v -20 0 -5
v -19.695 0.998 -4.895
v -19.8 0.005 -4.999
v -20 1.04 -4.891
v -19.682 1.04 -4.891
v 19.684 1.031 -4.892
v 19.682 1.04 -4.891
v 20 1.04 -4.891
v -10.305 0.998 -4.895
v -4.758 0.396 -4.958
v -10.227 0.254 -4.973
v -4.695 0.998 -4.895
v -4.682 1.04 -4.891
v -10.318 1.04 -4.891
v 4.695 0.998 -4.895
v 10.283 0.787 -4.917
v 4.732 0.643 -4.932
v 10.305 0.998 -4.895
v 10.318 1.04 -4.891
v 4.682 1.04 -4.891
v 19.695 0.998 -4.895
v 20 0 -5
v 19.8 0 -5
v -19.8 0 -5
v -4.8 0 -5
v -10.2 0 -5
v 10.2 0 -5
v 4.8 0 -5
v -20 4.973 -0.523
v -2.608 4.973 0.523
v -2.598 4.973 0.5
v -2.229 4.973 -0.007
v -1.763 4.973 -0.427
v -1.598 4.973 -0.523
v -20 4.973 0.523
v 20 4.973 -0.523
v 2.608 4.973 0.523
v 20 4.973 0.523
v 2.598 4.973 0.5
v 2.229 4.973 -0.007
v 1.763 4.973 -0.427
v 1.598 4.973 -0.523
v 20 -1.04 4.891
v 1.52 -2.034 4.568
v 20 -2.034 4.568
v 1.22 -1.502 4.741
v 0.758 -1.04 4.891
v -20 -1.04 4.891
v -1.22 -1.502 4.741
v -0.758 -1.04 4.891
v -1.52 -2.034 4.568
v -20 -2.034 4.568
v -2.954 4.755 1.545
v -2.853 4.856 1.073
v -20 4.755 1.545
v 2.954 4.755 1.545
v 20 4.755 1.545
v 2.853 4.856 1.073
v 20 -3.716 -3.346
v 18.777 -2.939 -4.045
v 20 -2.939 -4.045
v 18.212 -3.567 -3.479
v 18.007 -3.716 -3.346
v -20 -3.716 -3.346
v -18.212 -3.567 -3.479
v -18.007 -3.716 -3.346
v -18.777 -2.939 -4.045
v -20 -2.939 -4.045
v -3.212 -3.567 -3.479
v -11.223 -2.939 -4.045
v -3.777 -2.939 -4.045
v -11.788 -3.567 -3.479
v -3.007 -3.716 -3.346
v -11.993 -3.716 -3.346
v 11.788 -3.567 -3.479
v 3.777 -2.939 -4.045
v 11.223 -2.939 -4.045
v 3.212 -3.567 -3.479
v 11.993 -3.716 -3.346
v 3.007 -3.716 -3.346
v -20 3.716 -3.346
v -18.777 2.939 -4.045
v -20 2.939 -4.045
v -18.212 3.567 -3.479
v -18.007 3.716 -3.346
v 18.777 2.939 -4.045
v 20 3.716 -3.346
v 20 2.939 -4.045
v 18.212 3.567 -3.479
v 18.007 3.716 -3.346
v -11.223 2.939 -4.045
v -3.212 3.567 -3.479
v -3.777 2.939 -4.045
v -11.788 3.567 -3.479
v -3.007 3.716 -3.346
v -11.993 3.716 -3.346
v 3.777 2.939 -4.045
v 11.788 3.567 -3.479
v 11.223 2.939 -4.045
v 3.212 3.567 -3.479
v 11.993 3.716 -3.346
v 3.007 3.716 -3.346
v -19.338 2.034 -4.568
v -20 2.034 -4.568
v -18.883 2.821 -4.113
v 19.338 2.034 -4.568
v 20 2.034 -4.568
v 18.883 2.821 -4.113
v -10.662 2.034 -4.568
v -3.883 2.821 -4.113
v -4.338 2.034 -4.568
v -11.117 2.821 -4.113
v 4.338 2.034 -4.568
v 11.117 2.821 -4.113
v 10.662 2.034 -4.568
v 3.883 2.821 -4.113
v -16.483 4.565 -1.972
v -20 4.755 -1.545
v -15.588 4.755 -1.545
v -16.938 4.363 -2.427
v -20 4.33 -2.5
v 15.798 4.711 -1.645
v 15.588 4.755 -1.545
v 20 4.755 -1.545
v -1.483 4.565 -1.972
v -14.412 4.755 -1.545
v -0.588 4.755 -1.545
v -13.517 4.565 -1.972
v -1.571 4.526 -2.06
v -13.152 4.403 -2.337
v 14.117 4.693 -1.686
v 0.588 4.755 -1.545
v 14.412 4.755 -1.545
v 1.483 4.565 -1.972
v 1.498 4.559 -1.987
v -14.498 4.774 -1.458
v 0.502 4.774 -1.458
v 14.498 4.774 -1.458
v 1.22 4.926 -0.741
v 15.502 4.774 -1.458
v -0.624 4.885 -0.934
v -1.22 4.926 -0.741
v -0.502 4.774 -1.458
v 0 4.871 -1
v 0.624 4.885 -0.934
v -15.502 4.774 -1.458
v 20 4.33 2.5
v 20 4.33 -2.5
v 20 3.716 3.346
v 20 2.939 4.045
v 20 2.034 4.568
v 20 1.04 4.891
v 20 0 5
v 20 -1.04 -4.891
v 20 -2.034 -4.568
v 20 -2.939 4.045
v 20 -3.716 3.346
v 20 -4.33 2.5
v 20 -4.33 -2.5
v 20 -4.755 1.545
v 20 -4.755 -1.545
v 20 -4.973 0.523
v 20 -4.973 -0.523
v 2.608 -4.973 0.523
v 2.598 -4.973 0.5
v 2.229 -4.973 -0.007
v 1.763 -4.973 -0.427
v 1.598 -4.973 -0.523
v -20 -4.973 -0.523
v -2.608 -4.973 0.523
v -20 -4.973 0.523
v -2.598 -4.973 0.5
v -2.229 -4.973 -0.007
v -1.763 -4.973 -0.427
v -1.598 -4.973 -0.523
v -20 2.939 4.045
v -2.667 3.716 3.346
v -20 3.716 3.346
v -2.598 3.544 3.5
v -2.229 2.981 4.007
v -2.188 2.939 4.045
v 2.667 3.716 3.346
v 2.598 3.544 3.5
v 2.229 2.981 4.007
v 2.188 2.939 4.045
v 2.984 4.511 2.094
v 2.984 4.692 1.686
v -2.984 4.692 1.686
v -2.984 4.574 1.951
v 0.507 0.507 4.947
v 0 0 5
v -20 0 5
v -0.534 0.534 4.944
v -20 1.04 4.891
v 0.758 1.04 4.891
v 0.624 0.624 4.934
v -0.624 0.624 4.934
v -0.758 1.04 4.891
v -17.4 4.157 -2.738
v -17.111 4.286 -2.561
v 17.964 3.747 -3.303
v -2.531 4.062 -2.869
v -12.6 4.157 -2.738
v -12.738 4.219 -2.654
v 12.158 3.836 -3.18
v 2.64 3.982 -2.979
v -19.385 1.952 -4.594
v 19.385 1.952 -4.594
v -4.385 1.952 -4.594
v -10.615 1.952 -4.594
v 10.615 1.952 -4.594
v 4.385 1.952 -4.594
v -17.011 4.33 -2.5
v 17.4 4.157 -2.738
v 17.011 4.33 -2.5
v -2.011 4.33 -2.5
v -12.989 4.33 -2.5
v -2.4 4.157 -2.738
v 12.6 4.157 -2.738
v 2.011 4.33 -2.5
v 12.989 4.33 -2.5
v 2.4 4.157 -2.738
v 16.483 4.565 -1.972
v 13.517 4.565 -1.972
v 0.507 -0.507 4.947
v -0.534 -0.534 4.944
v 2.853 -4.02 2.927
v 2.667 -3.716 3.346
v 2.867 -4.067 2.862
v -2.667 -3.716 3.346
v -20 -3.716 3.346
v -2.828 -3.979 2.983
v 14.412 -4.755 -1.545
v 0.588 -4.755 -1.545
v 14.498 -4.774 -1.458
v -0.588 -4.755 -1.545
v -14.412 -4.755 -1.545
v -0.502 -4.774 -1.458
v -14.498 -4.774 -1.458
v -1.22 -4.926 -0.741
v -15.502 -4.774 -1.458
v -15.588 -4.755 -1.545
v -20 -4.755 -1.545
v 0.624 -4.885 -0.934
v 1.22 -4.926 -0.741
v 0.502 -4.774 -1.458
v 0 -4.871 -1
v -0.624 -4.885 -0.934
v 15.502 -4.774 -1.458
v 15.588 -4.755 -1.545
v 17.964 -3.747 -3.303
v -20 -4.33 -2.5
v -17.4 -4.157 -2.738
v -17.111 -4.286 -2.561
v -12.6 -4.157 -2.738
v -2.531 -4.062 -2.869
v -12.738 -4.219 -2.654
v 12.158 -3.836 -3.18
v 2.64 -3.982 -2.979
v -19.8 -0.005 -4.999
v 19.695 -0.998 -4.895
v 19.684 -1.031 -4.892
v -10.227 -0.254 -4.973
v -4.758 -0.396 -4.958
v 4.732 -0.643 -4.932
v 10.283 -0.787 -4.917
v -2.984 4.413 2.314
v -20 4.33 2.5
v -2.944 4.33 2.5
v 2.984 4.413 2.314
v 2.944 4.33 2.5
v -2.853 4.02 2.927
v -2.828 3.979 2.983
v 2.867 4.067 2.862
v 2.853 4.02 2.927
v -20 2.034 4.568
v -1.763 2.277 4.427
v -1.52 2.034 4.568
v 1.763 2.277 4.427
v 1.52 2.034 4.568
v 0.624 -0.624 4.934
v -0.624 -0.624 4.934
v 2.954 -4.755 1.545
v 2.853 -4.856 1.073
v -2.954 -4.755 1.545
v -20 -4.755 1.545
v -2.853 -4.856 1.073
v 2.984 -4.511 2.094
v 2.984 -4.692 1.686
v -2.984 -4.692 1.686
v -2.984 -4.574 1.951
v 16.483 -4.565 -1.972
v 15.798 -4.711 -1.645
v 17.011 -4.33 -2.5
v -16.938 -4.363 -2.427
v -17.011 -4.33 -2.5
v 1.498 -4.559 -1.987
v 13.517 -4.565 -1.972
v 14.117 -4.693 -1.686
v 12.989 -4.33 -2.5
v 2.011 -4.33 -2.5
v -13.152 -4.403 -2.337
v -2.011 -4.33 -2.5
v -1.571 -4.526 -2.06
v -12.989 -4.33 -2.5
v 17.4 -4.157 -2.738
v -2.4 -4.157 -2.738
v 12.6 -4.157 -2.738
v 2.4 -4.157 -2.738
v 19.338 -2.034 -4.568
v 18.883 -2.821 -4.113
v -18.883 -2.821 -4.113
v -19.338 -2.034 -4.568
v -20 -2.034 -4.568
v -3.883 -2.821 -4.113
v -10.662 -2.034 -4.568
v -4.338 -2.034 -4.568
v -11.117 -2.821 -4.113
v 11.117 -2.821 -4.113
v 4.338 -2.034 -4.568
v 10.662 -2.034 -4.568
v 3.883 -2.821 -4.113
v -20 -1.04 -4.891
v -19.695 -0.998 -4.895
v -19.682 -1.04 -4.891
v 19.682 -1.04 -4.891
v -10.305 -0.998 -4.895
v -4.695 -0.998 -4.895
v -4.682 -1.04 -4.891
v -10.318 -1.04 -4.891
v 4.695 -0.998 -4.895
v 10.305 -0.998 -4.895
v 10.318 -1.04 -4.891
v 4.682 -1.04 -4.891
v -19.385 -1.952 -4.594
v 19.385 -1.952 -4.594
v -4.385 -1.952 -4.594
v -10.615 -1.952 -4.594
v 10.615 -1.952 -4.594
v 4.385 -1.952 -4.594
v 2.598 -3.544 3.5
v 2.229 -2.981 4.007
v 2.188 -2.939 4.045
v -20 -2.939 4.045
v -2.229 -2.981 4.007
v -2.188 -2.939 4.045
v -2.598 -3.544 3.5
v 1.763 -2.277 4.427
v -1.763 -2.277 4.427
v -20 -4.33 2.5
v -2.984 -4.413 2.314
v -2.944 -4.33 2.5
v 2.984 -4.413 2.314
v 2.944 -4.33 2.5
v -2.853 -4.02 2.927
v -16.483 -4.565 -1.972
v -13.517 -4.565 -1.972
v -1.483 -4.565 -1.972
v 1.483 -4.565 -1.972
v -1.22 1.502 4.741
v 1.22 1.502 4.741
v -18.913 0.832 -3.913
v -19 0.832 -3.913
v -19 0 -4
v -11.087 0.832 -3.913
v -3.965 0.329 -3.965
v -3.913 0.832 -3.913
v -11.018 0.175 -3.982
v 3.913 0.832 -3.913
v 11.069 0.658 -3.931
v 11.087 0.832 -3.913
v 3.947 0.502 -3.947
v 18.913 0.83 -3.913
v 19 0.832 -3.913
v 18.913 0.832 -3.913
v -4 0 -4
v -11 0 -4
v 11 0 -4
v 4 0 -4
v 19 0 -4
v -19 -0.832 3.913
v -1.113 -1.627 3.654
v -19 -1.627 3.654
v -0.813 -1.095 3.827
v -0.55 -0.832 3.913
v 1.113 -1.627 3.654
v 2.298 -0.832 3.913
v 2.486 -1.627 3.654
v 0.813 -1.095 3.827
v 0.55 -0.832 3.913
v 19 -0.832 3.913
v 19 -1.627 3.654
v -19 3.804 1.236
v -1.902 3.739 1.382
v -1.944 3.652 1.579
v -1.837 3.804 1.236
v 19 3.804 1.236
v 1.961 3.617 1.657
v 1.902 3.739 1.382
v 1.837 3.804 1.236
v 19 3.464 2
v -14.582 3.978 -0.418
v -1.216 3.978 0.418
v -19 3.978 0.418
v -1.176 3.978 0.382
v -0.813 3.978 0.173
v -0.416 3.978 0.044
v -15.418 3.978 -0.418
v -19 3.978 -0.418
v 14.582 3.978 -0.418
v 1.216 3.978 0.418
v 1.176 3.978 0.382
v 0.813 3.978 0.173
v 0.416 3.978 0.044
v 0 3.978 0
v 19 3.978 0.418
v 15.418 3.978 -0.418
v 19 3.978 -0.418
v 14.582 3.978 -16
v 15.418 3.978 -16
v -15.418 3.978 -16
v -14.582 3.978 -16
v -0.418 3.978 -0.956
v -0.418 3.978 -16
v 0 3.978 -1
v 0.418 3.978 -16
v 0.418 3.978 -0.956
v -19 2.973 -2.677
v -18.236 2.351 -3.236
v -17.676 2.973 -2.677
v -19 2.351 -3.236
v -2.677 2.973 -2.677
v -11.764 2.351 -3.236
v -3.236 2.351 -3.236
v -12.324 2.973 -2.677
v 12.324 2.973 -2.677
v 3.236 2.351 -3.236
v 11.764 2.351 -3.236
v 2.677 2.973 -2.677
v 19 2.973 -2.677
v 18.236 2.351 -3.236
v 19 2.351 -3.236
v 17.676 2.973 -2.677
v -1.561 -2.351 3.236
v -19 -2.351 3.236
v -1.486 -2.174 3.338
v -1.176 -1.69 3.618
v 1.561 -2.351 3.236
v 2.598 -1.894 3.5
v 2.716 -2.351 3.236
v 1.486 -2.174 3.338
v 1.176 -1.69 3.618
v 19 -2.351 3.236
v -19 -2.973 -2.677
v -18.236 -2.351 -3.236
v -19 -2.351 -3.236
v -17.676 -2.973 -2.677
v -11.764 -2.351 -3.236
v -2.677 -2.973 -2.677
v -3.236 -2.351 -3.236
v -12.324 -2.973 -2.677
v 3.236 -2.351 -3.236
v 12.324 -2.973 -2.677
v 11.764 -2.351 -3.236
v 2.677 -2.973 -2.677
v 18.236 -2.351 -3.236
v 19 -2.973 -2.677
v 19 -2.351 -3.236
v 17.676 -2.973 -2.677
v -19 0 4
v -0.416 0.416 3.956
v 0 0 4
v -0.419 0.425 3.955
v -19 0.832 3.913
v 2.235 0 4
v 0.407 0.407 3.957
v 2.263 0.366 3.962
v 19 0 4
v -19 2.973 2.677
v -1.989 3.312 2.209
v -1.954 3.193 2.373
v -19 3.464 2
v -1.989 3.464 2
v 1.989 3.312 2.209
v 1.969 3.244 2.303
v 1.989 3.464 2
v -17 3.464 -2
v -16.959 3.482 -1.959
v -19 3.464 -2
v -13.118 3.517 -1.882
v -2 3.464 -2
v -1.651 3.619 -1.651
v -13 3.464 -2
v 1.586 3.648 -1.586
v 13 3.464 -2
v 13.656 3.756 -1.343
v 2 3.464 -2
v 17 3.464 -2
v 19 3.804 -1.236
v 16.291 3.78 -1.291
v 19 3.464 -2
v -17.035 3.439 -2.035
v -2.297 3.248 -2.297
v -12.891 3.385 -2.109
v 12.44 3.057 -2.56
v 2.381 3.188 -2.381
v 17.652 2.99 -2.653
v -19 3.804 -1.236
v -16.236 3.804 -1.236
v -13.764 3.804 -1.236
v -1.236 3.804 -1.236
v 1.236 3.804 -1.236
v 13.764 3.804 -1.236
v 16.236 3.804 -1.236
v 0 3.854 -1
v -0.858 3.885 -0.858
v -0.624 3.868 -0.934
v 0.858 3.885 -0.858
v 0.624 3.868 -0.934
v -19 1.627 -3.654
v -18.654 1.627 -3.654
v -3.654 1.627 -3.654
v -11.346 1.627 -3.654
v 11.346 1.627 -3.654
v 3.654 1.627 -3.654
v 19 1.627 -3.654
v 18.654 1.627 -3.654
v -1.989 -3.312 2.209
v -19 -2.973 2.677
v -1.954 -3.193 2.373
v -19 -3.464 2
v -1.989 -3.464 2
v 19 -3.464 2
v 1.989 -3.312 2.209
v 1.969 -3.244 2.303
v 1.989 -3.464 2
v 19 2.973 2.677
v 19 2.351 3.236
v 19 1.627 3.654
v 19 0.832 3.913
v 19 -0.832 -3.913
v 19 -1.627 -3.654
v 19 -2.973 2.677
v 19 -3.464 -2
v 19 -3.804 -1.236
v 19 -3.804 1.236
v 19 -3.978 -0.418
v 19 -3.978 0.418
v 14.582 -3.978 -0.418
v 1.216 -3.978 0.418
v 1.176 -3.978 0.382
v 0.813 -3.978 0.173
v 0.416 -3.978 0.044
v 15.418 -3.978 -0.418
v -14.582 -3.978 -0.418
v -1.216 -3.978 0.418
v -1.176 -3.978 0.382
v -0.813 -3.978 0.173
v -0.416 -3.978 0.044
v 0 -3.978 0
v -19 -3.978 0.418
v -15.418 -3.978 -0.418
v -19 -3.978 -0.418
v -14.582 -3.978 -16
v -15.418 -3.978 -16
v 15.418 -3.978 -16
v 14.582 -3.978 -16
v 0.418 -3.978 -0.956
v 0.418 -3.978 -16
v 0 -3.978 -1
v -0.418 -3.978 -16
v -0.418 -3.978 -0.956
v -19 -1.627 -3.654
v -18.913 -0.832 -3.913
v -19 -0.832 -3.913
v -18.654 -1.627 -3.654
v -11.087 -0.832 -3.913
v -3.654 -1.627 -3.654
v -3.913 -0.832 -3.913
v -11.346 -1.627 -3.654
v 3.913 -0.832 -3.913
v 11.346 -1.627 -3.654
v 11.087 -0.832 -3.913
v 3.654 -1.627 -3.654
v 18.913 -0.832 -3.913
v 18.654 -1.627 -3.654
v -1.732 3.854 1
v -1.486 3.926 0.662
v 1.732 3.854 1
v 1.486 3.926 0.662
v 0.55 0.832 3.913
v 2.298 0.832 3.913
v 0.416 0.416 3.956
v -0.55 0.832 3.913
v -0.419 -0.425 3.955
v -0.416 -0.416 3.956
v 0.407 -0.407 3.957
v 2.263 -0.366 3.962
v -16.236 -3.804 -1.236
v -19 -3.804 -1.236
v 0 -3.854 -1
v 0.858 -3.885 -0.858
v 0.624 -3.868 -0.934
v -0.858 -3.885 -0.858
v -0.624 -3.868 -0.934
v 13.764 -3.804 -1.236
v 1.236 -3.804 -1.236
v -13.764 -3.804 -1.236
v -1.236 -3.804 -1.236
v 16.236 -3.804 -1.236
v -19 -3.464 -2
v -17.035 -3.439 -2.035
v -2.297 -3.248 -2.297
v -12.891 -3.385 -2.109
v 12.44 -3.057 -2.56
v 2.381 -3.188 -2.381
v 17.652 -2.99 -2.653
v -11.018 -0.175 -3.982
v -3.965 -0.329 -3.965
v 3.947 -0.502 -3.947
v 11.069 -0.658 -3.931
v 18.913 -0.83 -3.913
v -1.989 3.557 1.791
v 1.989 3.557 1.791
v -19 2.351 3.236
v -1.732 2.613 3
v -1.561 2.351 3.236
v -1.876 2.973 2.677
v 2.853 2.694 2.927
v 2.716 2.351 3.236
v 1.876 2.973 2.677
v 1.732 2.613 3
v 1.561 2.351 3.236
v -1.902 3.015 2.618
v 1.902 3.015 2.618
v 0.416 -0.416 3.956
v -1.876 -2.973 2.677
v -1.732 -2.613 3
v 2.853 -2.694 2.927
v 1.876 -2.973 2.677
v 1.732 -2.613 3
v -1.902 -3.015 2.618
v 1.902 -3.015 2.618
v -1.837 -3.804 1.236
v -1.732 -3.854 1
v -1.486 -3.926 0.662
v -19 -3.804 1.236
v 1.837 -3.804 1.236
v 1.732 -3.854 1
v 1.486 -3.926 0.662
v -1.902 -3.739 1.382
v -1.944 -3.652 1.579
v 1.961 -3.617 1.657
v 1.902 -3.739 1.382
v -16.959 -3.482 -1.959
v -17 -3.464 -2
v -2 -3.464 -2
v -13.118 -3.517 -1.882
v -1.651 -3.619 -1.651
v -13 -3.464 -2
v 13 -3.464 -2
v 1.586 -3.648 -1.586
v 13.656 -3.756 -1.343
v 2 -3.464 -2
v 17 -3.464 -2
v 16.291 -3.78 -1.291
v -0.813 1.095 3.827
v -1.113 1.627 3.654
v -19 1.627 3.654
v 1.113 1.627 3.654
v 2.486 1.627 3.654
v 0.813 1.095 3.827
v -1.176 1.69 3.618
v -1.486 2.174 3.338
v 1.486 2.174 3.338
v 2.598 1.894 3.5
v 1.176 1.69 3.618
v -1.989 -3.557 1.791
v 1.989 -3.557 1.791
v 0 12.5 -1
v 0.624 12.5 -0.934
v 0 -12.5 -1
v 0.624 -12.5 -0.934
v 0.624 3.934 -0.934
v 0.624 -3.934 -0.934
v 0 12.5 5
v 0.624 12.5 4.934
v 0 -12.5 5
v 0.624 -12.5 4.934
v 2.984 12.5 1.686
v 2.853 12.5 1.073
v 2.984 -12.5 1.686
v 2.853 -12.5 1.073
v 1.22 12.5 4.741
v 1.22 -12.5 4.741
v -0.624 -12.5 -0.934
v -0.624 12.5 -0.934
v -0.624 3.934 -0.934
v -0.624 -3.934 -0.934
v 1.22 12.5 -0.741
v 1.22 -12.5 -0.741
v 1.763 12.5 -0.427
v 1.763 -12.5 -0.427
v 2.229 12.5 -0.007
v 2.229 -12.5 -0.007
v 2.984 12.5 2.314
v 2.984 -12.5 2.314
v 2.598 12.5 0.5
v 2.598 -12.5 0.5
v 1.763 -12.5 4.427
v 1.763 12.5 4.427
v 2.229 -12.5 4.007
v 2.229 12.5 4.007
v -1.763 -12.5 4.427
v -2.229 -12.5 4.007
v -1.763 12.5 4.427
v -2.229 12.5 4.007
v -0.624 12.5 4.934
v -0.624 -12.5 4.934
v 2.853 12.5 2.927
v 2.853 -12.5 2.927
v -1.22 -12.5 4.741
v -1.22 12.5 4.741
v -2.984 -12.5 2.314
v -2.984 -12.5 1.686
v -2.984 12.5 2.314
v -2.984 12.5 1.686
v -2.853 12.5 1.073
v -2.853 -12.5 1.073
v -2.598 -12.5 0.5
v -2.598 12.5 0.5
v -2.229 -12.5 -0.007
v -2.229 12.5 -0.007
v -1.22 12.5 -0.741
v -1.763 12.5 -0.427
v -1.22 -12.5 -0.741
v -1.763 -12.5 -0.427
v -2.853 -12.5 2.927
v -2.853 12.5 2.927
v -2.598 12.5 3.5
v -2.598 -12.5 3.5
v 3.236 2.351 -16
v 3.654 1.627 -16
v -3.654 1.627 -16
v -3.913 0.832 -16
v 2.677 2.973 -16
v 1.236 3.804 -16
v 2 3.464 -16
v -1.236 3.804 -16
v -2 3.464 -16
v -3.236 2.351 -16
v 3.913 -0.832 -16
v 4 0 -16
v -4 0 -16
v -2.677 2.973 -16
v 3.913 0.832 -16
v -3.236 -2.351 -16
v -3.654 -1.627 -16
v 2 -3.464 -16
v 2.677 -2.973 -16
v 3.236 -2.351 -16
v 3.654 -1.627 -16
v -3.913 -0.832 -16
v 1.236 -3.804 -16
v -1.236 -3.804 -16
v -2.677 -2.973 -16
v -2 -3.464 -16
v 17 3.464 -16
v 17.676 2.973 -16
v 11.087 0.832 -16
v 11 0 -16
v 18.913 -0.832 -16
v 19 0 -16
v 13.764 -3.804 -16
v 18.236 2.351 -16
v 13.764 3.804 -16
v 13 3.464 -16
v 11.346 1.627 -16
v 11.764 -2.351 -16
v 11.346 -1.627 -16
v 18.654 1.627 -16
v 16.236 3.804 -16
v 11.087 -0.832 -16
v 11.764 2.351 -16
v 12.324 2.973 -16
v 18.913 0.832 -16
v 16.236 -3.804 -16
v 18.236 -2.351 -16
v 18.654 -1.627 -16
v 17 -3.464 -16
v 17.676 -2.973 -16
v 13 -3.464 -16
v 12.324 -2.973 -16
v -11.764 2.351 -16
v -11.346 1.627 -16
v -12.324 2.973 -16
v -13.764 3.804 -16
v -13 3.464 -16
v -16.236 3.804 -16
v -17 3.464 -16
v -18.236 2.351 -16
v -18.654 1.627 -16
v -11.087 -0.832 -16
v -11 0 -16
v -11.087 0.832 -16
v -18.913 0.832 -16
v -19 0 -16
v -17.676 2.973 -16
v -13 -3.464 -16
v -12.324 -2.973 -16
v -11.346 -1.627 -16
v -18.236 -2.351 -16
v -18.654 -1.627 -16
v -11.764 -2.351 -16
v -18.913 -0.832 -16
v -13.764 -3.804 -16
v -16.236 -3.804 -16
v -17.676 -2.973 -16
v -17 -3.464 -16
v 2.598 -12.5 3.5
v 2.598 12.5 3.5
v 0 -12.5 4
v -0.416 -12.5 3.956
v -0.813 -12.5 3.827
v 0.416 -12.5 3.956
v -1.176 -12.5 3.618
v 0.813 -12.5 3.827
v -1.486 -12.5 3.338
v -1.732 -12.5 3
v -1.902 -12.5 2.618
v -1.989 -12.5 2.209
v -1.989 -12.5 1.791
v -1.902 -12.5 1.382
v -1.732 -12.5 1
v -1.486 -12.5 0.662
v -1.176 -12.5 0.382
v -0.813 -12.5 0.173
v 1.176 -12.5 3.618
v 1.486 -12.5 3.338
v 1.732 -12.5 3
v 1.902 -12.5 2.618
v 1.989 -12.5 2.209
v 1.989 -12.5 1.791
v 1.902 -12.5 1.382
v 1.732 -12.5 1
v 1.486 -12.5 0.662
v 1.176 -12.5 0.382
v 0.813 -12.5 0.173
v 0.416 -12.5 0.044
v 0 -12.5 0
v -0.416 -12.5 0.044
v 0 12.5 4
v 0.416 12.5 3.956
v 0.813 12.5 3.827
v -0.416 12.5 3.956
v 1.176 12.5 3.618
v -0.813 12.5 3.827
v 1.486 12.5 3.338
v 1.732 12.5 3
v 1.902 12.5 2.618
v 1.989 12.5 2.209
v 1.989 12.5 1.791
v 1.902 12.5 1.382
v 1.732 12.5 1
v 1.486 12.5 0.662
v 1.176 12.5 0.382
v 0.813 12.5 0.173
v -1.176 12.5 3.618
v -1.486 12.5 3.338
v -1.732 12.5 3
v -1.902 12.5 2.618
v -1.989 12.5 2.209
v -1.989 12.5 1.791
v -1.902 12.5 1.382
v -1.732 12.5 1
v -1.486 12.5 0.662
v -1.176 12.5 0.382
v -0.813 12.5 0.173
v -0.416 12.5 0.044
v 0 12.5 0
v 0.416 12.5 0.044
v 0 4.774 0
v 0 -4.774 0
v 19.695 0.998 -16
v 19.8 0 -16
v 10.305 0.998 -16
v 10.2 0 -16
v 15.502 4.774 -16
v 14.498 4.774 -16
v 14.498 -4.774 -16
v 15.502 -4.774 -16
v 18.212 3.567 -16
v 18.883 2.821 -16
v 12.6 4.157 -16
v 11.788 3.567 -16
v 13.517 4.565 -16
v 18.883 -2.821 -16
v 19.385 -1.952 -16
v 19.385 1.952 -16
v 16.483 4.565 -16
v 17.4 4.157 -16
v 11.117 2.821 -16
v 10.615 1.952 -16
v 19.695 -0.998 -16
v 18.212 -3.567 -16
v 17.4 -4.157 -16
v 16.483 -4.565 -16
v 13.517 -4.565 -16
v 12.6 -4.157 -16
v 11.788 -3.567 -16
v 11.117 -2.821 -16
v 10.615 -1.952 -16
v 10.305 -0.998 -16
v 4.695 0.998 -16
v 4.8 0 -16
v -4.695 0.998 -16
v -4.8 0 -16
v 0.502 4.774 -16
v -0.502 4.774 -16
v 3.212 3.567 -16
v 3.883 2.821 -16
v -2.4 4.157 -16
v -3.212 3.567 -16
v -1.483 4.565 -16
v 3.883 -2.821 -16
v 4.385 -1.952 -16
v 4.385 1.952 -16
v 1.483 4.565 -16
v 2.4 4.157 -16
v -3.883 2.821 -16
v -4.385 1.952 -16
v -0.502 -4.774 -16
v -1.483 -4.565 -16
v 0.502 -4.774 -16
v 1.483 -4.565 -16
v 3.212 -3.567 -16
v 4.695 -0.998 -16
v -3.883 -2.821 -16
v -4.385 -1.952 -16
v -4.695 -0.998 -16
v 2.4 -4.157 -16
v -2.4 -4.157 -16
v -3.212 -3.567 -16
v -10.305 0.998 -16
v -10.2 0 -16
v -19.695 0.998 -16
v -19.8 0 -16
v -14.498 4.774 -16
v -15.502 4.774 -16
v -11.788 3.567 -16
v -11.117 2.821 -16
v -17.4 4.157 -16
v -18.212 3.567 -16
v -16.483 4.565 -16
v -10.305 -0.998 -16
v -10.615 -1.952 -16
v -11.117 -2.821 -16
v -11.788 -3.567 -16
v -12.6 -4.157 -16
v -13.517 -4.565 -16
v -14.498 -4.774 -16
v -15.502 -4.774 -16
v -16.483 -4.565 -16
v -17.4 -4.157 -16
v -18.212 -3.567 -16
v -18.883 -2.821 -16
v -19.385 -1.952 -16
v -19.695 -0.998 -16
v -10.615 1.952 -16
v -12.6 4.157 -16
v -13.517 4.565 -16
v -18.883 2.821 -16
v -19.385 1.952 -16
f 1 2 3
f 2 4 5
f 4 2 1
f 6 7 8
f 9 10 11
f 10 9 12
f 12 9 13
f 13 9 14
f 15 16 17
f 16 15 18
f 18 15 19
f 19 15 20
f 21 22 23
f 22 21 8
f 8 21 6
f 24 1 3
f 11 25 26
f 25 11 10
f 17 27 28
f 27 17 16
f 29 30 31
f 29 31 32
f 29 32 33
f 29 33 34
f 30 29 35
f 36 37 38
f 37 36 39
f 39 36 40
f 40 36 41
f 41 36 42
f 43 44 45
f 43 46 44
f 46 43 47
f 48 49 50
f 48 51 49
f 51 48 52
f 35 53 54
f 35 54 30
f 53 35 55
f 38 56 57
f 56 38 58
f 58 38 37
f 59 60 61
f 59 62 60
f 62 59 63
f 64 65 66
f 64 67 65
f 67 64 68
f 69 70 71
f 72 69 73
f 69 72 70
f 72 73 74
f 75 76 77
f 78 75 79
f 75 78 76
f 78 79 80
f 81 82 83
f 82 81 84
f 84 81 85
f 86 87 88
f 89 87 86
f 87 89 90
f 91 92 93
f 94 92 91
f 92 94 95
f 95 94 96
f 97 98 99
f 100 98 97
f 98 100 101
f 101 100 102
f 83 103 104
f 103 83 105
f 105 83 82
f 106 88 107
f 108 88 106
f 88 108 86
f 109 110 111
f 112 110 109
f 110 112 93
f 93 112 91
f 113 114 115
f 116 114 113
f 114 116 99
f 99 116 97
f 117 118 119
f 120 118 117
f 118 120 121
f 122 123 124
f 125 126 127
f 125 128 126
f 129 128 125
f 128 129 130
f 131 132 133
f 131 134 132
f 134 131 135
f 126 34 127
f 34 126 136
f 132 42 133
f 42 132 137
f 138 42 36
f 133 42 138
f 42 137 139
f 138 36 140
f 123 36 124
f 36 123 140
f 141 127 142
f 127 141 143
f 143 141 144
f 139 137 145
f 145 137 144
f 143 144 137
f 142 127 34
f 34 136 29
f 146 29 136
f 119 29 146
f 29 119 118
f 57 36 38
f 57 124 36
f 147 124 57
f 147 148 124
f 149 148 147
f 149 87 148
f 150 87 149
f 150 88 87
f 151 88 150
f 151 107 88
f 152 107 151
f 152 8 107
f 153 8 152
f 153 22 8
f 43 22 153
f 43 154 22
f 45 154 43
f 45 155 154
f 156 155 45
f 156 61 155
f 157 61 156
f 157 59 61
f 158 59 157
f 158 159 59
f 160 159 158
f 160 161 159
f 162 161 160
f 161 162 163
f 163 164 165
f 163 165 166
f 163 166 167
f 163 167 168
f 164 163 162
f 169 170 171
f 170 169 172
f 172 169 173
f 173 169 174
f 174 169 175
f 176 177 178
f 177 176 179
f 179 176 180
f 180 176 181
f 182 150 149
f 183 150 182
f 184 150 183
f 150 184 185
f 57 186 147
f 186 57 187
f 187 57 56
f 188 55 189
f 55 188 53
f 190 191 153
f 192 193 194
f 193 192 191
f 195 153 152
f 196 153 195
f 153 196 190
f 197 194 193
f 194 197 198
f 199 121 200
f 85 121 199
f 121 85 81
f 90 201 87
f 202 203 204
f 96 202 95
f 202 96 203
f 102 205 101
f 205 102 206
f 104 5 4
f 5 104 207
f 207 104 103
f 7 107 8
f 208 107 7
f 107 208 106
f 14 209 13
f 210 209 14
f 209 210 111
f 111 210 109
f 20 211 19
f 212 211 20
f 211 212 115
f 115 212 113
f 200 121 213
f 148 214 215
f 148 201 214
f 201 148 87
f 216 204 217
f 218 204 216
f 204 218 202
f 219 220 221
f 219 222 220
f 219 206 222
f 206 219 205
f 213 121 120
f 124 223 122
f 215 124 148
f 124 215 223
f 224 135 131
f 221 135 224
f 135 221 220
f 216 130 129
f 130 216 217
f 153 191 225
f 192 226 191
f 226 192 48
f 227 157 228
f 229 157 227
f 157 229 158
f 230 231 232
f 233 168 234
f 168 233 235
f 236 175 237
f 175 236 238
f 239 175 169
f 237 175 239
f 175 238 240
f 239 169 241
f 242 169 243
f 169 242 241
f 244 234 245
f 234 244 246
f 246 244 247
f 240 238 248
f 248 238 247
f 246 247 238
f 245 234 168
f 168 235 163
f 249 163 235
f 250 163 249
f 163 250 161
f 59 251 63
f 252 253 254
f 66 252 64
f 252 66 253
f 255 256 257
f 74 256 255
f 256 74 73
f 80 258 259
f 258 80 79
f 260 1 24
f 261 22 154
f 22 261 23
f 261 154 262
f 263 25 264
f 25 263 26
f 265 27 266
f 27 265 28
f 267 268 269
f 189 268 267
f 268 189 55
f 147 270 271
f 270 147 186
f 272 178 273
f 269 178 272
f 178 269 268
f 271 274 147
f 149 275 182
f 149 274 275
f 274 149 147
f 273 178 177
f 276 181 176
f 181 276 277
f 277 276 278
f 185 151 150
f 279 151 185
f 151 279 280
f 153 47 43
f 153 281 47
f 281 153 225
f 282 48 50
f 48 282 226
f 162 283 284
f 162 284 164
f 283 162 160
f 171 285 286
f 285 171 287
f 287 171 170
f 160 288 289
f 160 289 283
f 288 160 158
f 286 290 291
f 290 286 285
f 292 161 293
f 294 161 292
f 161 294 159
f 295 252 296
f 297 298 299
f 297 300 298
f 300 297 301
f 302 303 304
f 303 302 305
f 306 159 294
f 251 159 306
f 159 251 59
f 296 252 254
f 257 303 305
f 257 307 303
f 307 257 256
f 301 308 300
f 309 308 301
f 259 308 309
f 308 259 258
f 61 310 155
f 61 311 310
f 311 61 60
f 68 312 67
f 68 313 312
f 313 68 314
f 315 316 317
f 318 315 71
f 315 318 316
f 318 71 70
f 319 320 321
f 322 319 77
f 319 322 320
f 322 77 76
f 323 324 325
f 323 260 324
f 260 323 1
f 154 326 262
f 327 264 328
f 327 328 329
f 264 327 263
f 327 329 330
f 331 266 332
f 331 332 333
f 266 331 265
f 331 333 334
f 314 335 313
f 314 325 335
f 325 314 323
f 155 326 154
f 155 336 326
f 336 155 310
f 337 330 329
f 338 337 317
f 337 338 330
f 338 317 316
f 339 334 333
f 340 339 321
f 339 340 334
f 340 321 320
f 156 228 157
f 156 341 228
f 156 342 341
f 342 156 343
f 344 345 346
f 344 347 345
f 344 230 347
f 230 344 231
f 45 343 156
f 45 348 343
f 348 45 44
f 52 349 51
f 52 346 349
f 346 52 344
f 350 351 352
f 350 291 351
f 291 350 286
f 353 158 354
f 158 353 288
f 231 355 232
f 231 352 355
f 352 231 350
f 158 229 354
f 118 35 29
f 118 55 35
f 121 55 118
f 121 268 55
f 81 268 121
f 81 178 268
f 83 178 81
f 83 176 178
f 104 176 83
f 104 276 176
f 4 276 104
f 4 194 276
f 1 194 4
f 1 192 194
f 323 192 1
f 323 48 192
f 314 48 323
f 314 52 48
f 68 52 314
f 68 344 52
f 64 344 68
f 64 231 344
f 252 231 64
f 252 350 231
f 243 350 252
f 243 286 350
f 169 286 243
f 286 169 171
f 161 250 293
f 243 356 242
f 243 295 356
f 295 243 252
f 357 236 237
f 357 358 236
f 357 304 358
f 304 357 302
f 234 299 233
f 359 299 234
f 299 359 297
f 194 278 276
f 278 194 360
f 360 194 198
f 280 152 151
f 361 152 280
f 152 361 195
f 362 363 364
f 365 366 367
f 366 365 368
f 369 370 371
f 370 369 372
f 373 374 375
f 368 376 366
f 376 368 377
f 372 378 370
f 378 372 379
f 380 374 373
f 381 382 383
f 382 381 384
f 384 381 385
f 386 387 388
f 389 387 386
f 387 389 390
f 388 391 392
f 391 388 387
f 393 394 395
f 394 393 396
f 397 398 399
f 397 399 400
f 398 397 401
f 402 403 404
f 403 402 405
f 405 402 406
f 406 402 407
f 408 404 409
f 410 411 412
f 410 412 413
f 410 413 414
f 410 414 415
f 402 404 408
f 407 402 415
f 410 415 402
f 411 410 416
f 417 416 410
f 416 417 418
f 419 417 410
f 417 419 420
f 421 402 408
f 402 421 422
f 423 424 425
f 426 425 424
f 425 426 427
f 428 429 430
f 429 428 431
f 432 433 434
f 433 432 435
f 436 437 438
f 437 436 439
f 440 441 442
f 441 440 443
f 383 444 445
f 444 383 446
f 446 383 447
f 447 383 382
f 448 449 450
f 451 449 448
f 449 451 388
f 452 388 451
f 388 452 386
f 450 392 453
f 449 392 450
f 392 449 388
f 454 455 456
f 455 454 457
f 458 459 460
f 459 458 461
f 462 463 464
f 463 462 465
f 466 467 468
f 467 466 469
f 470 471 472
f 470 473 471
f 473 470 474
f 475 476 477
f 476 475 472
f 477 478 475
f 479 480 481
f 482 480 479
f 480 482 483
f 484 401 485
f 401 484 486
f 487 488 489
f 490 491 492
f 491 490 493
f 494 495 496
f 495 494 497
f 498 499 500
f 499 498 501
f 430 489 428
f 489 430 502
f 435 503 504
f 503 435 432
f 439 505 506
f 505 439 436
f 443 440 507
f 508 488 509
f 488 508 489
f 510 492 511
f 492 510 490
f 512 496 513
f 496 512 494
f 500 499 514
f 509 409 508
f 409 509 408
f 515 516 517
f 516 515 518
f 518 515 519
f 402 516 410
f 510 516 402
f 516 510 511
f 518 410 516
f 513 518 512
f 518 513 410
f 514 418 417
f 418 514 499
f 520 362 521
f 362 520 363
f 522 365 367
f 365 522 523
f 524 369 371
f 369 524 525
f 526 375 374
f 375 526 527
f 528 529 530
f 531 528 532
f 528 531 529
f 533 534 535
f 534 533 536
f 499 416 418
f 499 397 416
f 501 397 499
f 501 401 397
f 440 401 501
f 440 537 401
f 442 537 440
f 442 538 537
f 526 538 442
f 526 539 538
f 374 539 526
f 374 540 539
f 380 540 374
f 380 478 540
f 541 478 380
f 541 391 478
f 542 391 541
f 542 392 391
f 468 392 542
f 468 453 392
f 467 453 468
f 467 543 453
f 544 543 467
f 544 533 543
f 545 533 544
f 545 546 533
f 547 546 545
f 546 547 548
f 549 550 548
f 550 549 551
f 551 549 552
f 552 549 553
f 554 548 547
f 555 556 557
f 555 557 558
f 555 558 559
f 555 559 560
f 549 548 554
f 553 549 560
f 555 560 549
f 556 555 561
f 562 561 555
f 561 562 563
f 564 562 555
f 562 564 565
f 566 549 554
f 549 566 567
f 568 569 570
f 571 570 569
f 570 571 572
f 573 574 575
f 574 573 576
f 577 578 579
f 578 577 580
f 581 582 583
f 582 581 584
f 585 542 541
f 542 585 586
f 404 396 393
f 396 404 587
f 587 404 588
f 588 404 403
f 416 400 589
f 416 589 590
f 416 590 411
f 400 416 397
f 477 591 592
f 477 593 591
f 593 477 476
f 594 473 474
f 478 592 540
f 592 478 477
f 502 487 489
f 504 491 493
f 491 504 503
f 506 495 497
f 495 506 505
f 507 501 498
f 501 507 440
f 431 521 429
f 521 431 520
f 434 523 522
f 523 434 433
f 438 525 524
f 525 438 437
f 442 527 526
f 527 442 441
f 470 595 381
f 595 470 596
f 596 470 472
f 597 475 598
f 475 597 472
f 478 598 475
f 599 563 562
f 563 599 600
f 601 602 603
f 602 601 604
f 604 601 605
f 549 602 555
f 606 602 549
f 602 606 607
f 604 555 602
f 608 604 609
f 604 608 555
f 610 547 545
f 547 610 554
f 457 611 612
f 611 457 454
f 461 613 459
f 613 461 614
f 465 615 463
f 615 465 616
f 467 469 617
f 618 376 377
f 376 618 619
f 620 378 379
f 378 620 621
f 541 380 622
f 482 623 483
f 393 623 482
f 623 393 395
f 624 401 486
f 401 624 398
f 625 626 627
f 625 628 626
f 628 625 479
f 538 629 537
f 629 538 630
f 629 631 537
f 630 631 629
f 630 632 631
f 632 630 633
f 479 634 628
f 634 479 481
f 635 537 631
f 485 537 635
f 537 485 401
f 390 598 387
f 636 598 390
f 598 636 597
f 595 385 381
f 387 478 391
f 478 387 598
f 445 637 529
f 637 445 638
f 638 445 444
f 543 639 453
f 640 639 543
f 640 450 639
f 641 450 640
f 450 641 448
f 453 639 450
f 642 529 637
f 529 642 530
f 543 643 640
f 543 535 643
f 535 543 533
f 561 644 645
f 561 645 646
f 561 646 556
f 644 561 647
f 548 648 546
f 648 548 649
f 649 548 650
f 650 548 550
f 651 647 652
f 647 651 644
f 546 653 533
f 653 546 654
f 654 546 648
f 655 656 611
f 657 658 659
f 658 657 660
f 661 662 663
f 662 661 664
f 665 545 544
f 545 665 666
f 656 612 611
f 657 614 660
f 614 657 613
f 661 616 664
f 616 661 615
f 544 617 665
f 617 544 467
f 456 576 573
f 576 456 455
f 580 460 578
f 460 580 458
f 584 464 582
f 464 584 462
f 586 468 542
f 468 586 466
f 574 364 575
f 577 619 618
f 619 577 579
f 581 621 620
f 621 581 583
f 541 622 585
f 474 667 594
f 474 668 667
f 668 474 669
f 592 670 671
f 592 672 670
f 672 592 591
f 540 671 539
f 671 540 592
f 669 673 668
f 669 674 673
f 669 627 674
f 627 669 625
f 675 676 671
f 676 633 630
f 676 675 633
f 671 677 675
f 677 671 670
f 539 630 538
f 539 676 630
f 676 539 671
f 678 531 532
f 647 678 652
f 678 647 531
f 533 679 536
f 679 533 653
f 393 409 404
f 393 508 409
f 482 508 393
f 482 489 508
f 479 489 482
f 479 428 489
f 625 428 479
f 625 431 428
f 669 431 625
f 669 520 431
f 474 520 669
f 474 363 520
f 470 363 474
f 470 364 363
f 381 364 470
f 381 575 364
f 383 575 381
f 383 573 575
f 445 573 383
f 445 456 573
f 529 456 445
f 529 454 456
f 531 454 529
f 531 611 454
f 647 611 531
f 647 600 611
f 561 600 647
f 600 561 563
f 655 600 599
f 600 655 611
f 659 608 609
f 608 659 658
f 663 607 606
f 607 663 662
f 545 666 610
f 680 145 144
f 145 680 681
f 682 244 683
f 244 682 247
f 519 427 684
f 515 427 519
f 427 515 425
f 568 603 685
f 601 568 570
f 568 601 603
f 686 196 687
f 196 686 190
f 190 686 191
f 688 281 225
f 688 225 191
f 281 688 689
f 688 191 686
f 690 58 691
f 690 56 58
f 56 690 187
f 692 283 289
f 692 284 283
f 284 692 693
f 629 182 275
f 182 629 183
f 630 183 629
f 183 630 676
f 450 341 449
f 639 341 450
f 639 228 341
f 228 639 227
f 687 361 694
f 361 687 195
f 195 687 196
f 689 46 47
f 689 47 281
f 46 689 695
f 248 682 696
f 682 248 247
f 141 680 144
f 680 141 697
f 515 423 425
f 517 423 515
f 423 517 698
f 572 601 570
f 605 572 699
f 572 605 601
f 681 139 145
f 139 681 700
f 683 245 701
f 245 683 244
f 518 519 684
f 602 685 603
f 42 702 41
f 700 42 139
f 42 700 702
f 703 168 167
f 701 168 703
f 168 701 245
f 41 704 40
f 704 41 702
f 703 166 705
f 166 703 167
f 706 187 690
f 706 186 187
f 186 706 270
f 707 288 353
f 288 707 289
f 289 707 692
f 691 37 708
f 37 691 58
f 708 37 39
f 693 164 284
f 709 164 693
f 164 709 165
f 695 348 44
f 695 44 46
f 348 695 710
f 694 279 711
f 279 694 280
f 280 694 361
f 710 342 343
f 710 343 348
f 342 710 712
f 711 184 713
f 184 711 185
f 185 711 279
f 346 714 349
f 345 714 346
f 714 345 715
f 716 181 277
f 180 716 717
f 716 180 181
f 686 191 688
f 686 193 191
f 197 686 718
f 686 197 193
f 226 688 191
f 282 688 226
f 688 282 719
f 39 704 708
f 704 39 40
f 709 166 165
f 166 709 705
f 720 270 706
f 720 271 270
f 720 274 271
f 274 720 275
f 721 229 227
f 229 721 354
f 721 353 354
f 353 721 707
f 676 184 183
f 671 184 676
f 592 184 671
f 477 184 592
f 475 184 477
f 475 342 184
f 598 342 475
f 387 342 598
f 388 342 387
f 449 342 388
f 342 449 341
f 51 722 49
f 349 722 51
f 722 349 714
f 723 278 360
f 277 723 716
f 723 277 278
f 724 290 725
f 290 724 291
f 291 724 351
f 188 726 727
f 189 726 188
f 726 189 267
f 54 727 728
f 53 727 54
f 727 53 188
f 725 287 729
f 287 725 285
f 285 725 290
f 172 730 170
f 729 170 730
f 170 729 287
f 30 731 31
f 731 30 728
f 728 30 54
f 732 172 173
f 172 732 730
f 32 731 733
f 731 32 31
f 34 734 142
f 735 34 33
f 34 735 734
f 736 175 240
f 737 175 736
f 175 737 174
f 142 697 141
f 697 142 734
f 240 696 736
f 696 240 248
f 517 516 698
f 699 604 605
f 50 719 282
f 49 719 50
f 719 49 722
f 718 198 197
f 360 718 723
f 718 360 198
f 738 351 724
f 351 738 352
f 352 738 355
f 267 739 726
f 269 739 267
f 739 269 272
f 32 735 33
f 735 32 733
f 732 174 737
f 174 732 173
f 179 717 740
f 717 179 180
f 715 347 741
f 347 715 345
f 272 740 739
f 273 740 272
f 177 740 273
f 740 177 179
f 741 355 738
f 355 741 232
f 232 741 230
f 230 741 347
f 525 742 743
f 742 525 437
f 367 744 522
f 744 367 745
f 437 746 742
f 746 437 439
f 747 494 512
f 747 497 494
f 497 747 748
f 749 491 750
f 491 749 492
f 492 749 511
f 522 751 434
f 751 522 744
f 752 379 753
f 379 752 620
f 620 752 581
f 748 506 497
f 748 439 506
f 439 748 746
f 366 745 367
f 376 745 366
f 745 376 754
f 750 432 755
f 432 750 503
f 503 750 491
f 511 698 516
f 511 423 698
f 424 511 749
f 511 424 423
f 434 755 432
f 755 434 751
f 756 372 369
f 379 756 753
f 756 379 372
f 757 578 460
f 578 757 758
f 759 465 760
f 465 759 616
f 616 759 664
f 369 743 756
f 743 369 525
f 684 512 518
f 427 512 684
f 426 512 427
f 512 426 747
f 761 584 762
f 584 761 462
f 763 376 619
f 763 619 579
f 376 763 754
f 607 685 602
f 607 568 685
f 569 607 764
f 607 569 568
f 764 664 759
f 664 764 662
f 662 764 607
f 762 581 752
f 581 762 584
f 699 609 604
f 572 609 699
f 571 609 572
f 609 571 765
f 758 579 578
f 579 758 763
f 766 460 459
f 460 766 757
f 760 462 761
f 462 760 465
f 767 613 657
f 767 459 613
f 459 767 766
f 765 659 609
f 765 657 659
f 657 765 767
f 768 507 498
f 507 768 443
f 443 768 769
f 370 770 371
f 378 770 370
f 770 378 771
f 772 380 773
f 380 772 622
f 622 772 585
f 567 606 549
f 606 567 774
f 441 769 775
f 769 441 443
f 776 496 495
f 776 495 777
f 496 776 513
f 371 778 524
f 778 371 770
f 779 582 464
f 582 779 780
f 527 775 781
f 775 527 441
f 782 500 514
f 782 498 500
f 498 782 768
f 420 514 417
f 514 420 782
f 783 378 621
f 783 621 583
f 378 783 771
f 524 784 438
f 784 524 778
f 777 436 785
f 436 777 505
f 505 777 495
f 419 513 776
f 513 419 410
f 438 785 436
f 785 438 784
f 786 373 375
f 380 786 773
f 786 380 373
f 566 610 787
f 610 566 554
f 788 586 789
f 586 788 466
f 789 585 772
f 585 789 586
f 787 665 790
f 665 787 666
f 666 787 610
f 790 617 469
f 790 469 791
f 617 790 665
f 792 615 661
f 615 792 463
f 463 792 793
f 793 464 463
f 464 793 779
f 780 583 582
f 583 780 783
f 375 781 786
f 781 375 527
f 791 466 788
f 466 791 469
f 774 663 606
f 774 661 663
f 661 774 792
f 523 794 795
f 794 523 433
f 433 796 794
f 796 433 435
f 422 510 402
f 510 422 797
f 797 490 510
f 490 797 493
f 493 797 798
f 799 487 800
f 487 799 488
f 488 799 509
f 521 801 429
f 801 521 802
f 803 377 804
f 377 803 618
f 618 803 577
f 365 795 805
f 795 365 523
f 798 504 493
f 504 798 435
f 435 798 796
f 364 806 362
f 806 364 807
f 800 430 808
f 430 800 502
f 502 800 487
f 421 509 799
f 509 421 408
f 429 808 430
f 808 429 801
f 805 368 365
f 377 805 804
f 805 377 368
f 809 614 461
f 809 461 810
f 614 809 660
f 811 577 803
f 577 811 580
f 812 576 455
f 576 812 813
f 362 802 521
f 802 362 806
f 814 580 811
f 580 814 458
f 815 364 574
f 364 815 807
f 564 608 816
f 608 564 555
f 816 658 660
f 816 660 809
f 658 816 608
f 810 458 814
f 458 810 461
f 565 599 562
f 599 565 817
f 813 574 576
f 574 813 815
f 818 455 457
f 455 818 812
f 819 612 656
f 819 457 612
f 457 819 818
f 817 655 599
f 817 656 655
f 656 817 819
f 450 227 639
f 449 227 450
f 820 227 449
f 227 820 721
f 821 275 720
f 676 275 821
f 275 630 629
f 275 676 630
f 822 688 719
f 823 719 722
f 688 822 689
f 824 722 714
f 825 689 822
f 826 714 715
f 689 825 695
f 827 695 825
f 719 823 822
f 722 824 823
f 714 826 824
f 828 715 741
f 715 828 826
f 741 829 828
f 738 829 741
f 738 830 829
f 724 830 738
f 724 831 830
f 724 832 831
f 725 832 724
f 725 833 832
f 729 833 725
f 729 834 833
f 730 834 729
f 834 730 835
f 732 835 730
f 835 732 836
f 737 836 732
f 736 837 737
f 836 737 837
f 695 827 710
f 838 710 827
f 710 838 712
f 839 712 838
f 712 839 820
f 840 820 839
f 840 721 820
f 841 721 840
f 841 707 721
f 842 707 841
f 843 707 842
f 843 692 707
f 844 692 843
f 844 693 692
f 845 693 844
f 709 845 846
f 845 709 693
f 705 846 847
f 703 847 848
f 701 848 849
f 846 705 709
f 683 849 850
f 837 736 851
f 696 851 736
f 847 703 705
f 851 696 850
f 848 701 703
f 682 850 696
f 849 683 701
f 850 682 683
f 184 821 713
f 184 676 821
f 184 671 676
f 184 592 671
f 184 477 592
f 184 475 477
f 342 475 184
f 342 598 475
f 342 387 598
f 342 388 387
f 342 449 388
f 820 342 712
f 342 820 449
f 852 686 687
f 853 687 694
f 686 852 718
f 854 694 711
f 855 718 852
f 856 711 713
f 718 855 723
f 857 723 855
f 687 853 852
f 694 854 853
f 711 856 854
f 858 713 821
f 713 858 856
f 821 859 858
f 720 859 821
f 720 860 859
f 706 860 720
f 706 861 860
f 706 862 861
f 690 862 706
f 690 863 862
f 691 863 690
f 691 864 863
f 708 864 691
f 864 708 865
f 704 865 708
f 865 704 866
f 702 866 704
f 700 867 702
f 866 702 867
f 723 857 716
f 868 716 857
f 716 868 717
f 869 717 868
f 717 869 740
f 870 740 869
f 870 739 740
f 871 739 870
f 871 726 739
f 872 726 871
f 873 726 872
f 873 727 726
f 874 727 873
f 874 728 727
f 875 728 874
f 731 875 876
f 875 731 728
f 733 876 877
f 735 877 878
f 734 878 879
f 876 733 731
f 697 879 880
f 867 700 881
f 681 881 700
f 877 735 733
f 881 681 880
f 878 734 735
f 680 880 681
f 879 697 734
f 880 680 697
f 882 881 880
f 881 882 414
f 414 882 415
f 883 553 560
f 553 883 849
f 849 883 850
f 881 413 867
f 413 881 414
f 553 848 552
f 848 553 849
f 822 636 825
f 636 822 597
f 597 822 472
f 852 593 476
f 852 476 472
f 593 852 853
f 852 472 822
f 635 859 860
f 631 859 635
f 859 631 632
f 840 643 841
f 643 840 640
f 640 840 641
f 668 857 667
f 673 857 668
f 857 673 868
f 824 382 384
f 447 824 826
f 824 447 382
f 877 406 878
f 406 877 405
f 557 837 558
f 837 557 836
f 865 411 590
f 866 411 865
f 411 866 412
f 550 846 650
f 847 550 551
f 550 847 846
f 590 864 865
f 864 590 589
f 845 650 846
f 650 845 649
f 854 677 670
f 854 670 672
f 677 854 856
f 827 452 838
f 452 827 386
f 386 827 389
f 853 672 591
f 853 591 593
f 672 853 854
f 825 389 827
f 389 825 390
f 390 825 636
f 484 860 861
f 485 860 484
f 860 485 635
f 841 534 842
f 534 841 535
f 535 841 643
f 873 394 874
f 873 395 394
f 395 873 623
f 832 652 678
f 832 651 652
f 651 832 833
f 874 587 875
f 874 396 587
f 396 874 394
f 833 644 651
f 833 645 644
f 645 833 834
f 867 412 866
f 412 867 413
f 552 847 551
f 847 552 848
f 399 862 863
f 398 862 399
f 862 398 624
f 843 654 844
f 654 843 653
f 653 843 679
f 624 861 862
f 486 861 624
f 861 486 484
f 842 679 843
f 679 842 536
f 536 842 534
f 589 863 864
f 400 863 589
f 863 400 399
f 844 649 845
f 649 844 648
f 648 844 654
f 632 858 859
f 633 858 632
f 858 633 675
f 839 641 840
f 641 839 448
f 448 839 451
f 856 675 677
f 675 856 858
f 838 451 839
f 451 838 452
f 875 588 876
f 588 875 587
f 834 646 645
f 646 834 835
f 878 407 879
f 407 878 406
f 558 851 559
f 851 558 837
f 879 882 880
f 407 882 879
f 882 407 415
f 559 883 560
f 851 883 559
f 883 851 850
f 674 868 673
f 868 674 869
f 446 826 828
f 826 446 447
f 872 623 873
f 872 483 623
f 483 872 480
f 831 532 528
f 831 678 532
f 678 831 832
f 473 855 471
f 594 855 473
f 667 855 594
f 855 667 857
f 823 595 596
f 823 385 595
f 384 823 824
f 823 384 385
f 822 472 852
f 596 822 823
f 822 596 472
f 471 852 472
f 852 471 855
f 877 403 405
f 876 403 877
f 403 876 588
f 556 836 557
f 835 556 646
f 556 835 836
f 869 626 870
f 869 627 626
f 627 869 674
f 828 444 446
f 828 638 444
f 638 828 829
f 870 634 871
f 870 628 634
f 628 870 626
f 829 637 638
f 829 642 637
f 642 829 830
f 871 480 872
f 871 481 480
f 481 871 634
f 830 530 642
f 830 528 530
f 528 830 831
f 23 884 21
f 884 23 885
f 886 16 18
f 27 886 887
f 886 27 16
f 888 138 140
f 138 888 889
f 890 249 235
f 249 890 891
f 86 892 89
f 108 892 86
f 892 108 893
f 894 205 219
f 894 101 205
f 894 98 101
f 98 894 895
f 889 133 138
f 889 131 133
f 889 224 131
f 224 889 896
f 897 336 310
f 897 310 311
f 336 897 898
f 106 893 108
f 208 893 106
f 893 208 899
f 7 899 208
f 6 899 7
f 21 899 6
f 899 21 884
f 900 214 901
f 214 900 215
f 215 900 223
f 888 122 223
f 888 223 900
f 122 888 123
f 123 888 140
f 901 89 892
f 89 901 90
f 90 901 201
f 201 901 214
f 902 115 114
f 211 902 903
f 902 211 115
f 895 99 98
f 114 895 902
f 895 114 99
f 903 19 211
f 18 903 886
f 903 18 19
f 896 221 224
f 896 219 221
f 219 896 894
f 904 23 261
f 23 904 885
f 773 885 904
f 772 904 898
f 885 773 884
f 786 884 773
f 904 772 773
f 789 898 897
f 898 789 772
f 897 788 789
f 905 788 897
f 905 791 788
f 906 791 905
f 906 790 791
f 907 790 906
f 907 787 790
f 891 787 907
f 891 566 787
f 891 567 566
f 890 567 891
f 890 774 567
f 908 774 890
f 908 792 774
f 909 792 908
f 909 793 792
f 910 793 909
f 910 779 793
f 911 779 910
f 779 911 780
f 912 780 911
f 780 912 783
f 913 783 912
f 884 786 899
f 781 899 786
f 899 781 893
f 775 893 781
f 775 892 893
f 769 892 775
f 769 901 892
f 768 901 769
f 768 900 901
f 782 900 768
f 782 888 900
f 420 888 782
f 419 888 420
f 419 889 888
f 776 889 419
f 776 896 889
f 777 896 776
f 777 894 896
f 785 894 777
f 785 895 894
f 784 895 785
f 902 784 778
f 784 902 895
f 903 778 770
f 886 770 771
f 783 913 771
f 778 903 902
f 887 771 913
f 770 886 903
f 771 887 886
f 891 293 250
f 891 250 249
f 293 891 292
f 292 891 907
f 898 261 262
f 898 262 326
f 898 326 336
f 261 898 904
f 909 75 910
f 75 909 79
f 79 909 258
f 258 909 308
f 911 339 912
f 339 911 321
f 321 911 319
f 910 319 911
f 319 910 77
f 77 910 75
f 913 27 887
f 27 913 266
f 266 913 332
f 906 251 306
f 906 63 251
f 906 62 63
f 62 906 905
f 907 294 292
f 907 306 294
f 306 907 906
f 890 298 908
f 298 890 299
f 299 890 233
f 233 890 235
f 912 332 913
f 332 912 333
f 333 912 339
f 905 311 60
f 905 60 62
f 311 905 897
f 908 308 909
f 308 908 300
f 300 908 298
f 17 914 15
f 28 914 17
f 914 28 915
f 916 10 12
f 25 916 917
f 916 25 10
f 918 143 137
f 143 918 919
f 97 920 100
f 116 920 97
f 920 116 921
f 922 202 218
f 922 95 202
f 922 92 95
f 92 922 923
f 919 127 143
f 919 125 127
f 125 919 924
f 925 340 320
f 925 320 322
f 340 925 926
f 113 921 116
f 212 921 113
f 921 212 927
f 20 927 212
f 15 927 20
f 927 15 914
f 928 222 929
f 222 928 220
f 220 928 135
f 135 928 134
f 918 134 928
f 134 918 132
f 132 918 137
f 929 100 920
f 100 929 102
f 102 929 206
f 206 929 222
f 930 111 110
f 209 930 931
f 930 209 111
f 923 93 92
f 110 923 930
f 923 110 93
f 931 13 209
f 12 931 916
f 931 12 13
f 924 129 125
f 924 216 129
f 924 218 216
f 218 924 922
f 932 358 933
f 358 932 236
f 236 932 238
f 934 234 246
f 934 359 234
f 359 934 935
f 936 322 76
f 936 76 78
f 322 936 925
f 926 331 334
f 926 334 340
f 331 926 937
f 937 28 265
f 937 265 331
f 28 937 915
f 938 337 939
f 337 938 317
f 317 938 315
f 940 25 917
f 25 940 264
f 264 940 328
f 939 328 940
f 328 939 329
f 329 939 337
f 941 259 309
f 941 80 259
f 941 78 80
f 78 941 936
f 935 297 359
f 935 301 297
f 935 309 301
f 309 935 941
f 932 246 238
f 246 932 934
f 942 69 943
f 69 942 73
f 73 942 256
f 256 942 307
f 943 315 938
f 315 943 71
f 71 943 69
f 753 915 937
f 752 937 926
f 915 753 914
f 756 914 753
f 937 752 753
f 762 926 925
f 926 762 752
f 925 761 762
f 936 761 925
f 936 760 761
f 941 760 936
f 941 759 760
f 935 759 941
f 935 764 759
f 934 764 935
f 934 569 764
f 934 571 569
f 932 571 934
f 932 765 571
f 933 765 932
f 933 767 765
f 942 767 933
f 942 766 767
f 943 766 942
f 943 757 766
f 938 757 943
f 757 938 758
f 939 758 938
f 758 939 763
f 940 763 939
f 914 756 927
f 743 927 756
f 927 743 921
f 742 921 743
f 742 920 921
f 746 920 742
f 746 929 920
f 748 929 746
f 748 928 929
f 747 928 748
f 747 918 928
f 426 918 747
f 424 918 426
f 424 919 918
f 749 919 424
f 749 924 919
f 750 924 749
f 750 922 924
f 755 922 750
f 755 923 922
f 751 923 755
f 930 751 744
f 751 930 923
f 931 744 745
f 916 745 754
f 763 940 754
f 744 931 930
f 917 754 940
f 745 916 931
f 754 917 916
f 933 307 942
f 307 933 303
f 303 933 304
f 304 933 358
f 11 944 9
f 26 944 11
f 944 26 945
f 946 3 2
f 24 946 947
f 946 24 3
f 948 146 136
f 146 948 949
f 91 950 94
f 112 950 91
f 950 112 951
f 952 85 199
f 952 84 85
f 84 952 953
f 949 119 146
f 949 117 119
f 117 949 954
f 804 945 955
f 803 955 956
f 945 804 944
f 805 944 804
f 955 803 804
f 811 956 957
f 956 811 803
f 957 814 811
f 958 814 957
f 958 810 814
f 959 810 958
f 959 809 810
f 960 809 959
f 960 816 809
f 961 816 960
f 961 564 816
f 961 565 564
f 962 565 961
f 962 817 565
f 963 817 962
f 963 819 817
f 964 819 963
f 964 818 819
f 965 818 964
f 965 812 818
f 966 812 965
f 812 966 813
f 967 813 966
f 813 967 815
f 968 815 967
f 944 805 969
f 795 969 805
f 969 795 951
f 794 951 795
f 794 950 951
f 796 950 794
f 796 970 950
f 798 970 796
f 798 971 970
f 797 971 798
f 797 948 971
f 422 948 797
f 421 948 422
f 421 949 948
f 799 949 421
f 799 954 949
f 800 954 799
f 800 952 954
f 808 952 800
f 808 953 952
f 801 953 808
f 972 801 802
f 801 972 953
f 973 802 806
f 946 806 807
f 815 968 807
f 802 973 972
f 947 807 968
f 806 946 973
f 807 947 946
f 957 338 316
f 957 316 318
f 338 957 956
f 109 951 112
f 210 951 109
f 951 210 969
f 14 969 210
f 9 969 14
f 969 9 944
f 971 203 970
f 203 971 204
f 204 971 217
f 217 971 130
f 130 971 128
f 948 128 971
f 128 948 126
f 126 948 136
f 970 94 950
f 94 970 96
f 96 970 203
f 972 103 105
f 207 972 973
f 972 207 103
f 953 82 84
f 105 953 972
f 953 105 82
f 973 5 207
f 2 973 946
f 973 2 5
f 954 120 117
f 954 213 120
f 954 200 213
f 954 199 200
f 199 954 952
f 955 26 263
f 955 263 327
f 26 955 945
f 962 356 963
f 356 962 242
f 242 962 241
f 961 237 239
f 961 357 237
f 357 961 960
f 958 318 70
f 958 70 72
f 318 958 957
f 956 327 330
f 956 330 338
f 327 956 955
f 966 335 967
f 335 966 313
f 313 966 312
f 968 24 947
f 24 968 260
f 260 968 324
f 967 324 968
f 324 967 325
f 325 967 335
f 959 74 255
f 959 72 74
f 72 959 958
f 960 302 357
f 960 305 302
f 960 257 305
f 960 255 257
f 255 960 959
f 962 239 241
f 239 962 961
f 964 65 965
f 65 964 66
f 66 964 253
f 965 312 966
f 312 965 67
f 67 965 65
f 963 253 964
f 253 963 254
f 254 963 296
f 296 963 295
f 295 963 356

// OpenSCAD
union(){
  difference(){
    rotate([0, 90, 0]){
      cylinder(h=40, r=5, center=true, $fn=30);
    }
    rotate([0, 90, 0]){
      cylinder(h=38, r=4, center=true, $fn=30);
    }
    translate([0, 0, 2]){
      rotate([90, 90, 0]){
        cylinder(h=12, r=3, center=true, $fn=30);
      }
    }
    translate([0, 0, -5]){
      cylinder(h=10, r=4, center=true, $fn=30);
    }
    translate([15, 0, -5]){
      cylinder(h=10, r=4, center=true, $fn=30);
    }
    translate([-15, 0, -5]){
      cylinder(h=10, r=4, center=true, $fn=30);
    }
  }
  difference(){
    rotate([90, 90, 0]){
      translate([-2, 0, 0]){
        cylinder(h=25, r=3, center=true, $fn=30);
      }
    }
    rotate([90, 90, 0]){
      translate([-2, 0, 0]){
        cylinder(h=26, r=2, center=true, $fn=30);
      }
    }
    rotate([0, 90, 0]){
      cylinder(h=38, r=4, center=true, $fn=30);
    }
  }
  difference(){
    translate([15, 0, -8]){
      cylinder(h=16, r=4.8, center=true, $fn=30);
    }
    translate([15, 0, -8]){
      cylinder(h=17, r=4, center=true, $fn=30);
    }
    rotate([0, 90, 0]){
      cylinder(h=38, r=4, center=true, $fn=30);
    }
  }
  difference(){
    translate([0, 0, -8]){
      cylinder(h=16, r=4.8, center=true, $fn=30);
    }
    translate([0, 0, -8]){
      cylinder(h=17, r=4, center=true, $fn=30);
    }
    rotate([0, 90, 0]){
      cylinder(h=38, r=4, center=true, $fn=30);
    }
  }
  difference(){
    translate([-15, 0, -8]){
      cylinder(h=16, r=4.8, center=true, $fn=30);
    }
    translate([-15, 0, -8]){
      cylinder(h=17, r=4, center=true, $fn=30);
    }
    rotate([0, 90, 0]){
      cylinder(h=38, r=4, center=true, $fn=30);
    }
  }
}
 
